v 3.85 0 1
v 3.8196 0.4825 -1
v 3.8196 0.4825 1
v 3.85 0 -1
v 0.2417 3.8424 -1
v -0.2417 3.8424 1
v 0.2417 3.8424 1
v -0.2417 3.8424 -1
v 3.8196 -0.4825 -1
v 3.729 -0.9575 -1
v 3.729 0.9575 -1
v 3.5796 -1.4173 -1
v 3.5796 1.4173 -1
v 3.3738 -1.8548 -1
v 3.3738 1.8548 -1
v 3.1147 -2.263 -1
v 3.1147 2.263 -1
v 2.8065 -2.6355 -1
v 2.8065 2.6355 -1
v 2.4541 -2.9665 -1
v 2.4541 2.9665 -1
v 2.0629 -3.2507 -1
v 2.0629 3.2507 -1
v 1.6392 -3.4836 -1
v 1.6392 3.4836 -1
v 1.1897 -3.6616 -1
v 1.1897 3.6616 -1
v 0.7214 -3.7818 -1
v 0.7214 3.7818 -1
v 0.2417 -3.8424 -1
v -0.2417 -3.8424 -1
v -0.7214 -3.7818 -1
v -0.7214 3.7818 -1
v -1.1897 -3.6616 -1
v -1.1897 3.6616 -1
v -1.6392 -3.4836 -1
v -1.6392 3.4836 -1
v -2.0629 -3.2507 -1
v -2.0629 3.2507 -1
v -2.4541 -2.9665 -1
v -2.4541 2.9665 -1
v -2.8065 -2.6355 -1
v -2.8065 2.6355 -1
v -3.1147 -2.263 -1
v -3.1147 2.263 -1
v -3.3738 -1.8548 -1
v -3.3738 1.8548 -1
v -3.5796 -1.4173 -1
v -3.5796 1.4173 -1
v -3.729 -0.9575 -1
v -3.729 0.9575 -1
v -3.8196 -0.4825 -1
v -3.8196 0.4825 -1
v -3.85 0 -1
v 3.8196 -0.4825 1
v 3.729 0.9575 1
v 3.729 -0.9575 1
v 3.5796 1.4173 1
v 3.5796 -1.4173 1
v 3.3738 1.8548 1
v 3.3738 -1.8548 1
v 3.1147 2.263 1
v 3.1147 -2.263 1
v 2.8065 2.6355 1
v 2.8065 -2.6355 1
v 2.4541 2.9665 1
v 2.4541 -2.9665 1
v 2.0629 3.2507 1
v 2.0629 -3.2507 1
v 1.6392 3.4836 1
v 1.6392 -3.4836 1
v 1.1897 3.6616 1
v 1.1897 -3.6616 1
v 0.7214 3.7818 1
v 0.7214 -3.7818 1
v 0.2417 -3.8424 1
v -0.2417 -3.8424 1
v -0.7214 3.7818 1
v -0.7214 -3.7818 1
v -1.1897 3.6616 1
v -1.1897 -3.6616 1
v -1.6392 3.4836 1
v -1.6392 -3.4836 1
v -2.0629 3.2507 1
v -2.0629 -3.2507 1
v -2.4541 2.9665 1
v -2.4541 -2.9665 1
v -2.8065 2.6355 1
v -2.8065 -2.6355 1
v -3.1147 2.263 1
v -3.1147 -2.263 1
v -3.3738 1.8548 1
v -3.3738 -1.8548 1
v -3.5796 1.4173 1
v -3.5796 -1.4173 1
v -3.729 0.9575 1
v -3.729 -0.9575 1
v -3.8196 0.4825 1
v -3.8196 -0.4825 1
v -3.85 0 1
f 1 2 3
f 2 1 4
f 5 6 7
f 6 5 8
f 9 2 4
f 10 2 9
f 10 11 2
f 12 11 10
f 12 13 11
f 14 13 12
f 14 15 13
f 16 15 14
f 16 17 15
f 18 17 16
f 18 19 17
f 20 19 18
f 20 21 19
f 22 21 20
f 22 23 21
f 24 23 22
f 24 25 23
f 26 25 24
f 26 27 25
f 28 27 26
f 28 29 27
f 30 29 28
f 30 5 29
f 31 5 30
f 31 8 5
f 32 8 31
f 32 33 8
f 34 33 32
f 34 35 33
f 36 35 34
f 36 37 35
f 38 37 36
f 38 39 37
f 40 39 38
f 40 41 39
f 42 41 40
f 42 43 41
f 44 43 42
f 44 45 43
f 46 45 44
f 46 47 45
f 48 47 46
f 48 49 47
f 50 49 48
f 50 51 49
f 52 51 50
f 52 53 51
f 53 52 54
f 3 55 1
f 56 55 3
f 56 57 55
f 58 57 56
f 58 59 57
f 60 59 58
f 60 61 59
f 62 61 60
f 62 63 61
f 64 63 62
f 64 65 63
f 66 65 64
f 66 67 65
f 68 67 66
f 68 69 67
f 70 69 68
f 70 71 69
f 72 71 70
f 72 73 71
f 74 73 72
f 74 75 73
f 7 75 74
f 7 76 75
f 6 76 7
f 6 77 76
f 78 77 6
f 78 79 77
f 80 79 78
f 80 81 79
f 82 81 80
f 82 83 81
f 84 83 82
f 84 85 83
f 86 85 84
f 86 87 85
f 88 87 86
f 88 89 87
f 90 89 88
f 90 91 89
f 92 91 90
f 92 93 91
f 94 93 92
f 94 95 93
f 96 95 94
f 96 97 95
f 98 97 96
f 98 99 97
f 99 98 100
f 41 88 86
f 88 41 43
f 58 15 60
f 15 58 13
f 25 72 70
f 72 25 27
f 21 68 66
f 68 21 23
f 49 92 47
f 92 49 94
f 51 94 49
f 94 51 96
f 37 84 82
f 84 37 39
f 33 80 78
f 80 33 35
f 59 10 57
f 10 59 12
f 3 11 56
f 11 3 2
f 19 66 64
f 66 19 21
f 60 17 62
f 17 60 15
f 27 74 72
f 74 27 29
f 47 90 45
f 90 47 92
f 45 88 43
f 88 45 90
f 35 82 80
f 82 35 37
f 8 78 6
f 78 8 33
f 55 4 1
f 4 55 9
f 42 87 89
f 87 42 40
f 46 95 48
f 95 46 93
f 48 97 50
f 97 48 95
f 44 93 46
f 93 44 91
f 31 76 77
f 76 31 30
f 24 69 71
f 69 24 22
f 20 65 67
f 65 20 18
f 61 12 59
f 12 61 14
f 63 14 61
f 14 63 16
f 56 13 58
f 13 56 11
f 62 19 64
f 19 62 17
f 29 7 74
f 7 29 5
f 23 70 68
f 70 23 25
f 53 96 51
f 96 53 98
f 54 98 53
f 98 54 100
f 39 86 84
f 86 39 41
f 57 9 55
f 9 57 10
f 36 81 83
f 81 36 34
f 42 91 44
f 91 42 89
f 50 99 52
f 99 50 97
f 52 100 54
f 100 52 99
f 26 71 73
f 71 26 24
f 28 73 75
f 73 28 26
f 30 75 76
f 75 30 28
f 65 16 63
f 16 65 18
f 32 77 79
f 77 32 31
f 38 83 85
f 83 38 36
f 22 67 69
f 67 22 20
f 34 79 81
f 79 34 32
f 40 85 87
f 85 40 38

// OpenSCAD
$fn = 50;


difference() {
	union() {
		translate(v = [0, 0, -1.0000000000]) {
			cylinder(h = 2, r = 3.8500000000);
		}
	}
	union() {
		translate(v = [0, 0, -100.0000000000]) {
			cylinder(h = 200, r = 0);
		}
	}
}
